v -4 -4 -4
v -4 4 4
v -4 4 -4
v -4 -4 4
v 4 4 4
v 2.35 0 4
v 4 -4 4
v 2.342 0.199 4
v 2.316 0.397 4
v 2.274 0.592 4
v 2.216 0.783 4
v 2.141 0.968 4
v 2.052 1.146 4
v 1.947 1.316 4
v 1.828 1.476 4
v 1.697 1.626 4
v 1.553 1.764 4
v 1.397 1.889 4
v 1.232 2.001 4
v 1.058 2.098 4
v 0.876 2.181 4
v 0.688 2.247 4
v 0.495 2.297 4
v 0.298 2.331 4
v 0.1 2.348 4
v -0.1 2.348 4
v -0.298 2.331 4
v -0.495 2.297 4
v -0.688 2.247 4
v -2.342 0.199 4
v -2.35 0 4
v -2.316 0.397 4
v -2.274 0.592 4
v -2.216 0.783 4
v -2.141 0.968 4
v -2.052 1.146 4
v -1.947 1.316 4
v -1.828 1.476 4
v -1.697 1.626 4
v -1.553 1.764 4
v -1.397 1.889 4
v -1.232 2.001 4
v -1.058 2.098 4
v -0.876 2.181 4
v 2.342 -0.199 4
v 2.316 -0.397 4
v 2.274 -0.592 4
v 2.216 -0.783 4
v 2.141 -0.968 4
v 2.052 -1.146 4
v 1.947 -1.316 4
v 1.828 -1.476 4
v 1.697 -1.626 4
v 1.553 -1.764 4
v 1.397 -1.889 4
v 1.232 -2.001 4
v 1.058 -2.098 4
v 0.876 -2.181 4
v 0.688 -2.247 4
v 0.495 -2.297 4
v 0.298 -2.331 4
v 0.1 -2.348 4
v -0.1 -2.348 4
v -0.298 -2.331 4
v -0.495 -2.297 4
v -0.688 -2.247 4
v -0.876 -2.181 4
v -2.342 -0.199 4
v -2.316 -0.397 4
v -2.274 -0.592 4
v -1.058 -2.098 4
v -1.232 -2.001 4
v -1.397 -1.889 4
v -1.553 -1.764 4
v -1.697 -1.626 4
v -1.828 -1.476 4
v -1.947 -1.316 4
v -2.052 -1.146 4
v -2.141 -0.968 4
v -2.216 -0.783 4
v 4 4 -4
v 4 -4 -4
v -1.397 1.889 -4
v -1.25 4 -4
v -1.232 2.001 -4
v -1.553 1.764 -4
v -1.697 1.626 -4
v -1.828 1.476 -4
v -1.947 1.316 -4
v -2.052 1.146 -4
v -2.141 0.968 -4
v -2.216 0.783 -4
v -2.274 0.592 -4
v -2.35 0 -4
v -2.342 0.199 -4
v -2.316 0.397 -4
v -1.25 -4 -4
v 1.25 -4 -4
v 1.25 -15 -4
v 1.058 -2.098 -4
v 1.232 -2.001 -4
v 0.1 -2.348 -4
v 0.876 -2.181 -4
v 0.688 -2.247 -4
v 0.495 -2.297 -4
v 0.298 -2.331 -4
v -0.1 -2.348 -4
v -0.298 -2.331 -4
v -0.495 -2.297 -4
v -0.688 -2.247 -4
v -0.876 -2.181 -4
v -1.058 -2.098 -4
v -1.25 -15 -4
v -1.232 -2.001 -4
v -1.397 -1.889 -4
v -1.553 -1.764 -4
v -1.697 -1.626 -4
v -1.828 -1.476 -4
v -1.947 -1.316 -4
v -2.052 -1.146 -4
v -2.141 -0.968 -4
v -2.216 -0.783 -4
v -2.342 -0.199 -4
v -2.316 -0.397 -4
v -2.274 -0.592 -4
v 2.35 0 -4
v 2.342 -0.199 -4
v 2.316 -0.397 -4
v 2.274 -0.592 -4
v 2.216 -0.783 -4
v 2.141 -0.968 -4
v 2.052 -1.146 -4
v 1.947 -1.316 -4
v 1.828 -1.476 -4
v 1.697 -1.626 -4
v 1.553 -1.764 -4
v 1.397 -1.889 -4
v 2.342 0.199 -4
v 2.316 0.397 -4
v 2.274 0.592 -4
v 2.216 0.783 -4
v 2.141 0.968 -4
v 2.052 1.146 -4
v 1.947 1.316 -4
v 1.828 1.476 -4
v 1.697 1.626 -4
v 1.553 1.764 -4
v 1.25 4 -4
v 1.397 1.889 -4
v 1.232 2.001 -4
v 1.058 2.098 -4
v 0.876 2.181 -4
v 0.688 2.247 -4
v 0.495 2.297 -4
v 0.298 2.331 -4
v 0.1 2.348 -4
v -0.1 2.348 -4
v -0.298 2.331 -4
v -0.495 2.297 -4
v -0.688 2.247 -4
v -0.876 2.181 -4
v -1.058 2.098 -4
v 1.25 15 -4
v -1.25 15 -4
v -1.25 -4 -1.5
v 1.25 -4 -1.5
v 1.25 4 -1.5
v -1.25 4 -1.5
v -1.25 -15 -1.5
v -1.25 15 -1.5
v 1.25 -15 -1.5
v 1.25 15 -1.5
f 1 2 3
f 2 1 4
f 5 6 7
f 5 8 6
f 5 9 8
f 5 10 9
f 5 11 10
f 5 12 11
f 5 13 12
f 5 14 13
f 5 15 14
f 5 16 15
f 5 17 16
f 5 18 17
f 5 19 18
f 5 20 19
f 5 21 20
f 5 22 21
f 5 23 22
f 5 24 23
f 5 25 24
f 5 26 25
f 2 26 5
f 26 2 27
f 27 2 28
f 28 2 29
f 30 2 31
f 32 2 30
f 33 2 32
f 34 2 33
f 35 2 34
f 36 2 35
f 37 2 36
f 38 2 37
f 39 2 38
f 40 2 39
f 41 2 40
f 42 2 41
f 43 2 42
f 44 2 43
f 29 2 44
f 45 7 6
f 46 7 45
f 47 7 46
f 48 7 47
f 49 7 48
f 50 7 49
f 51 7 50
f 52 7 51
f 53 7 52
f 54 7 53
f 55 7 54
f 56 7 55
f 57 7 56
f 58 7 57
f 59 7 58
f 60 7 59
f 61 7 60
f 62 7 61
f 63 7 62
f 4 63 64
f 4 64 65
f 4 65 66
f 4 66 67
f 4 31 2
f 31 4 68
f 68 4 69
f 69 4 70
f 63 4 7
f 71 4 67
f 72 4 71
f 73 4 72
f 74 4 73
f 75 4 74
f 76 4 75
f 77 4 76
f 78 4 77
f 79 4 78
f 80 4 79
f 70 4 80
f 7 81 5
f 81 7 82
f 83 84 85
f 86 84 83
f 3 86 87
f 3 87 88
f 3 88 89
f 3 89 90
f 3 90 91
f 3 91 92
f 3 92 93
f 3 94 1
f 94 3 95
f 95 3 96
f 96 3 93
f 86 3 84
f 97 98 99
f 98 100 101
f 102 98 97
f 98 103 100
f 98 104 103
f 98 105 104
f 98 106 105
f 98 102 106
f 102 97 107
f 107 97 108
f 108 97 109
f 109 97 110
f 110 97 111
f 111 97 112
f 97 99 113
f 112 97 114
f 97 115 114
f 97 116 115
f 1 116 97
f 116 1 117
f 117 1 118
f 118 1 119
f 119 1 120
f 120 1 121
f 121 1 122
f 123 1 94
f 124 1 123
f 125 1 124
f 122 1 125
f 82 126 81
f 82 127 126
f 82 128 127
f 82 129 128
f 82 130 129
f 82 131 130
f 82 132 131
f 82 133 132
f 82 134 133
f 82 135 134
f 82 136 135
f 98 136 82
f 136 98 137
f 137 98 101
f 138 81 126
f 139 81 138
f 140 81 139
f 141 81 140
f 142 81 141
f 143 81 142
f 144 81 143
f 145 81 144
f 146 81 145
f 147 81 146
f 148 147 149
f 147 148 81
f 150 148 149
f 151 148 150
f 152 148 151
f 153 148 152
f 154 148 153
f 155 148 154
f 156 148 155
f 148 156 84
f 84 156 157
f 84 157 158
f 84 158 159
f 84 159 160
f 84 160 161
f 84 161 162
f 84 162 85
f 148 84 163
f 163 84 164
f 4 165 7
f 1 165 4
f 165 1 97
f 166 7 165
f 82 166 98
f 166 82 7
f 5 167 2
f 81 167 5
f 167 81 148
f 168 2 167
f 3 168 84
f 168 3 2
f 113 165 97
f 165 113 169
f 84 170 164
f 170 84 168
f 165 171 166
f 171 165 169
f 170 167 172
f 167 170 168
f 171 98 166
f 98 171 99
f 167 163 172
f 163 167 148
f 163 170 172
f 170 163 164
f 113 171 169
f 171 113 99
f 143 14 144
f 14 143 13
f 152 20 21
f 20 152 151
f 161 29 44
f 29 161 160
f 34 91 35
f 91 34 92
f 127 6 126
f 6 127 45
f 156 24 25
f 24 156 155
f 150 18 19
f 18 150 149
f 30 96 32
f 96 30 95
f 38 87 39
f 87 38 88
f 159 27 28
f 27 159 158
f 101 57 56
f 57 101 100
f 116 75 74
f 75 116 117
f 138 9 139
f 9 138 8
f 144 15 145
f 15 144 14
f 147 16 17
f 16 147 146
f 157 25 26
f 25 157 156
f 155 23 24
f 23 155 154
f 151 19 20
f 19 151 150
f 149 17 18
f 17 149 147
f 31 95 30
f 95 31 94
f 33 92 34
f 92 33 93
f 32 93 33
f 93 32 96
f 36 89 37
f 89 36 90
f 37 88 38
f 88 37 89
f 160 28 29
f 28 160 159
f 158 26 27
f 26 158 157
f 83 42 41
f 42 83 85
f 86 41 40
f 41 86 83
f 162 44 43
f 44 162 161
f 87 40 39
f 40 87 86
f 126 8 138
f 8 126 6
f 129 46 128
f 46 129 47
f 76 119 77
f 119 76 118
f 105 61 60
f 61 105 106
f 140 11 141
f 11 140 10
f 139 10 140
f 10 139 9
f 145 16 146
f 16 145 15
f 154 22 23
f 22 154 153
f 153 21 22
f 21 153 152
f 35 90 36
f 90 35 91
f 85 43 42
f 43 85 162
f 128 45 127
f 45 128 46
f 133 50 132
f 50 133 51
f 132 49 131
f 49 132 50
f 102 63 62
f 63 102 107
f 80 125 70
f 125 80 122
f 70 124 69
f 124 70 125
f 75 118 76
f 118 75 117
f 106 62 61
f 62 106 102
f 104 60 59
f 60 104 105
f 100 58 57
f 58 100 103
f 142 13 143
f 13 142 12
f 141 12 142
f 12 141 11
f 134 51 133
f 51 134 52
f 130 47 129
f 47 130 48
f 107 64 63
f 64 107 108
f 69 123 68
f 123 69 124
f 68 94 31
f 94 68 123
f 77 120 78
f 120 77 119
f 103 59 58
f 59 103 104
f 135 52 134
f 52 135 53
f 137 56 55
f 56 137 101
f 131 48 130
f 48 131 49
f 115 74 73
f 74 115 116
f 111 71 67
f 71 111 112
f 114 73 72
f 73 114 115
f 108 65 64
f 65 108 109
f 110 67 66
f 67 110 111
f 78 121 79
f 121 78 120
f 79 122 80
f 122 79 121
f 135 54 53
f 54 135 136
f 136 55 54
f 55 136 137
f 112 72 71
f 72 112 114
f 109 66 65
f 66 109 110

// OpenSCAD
/*

Removable spring hanger to be used with the translation stage (mount_holder.scad) to make it easier to install the springs
Fits into the grove on the mount_holder.scad

*/

$fs =0.2;
$fa = 0.2;

block_height = 8;
block_width = 8;
block_length = 8;

bar_length = 30;
bar_width = 2.5;
bar_height = 2.5;

bushing_d = 4.7;

difference(){
    union(){
        cube([block_width,block_length,block_height],center=true);
        translate([0,0,-block_height/2+bar_height/2]) cube([bar_width,bar_length,bar_height],center=true);
    }
    cylinder(d = bushing_d, h = block_height+2, center=true);
}
